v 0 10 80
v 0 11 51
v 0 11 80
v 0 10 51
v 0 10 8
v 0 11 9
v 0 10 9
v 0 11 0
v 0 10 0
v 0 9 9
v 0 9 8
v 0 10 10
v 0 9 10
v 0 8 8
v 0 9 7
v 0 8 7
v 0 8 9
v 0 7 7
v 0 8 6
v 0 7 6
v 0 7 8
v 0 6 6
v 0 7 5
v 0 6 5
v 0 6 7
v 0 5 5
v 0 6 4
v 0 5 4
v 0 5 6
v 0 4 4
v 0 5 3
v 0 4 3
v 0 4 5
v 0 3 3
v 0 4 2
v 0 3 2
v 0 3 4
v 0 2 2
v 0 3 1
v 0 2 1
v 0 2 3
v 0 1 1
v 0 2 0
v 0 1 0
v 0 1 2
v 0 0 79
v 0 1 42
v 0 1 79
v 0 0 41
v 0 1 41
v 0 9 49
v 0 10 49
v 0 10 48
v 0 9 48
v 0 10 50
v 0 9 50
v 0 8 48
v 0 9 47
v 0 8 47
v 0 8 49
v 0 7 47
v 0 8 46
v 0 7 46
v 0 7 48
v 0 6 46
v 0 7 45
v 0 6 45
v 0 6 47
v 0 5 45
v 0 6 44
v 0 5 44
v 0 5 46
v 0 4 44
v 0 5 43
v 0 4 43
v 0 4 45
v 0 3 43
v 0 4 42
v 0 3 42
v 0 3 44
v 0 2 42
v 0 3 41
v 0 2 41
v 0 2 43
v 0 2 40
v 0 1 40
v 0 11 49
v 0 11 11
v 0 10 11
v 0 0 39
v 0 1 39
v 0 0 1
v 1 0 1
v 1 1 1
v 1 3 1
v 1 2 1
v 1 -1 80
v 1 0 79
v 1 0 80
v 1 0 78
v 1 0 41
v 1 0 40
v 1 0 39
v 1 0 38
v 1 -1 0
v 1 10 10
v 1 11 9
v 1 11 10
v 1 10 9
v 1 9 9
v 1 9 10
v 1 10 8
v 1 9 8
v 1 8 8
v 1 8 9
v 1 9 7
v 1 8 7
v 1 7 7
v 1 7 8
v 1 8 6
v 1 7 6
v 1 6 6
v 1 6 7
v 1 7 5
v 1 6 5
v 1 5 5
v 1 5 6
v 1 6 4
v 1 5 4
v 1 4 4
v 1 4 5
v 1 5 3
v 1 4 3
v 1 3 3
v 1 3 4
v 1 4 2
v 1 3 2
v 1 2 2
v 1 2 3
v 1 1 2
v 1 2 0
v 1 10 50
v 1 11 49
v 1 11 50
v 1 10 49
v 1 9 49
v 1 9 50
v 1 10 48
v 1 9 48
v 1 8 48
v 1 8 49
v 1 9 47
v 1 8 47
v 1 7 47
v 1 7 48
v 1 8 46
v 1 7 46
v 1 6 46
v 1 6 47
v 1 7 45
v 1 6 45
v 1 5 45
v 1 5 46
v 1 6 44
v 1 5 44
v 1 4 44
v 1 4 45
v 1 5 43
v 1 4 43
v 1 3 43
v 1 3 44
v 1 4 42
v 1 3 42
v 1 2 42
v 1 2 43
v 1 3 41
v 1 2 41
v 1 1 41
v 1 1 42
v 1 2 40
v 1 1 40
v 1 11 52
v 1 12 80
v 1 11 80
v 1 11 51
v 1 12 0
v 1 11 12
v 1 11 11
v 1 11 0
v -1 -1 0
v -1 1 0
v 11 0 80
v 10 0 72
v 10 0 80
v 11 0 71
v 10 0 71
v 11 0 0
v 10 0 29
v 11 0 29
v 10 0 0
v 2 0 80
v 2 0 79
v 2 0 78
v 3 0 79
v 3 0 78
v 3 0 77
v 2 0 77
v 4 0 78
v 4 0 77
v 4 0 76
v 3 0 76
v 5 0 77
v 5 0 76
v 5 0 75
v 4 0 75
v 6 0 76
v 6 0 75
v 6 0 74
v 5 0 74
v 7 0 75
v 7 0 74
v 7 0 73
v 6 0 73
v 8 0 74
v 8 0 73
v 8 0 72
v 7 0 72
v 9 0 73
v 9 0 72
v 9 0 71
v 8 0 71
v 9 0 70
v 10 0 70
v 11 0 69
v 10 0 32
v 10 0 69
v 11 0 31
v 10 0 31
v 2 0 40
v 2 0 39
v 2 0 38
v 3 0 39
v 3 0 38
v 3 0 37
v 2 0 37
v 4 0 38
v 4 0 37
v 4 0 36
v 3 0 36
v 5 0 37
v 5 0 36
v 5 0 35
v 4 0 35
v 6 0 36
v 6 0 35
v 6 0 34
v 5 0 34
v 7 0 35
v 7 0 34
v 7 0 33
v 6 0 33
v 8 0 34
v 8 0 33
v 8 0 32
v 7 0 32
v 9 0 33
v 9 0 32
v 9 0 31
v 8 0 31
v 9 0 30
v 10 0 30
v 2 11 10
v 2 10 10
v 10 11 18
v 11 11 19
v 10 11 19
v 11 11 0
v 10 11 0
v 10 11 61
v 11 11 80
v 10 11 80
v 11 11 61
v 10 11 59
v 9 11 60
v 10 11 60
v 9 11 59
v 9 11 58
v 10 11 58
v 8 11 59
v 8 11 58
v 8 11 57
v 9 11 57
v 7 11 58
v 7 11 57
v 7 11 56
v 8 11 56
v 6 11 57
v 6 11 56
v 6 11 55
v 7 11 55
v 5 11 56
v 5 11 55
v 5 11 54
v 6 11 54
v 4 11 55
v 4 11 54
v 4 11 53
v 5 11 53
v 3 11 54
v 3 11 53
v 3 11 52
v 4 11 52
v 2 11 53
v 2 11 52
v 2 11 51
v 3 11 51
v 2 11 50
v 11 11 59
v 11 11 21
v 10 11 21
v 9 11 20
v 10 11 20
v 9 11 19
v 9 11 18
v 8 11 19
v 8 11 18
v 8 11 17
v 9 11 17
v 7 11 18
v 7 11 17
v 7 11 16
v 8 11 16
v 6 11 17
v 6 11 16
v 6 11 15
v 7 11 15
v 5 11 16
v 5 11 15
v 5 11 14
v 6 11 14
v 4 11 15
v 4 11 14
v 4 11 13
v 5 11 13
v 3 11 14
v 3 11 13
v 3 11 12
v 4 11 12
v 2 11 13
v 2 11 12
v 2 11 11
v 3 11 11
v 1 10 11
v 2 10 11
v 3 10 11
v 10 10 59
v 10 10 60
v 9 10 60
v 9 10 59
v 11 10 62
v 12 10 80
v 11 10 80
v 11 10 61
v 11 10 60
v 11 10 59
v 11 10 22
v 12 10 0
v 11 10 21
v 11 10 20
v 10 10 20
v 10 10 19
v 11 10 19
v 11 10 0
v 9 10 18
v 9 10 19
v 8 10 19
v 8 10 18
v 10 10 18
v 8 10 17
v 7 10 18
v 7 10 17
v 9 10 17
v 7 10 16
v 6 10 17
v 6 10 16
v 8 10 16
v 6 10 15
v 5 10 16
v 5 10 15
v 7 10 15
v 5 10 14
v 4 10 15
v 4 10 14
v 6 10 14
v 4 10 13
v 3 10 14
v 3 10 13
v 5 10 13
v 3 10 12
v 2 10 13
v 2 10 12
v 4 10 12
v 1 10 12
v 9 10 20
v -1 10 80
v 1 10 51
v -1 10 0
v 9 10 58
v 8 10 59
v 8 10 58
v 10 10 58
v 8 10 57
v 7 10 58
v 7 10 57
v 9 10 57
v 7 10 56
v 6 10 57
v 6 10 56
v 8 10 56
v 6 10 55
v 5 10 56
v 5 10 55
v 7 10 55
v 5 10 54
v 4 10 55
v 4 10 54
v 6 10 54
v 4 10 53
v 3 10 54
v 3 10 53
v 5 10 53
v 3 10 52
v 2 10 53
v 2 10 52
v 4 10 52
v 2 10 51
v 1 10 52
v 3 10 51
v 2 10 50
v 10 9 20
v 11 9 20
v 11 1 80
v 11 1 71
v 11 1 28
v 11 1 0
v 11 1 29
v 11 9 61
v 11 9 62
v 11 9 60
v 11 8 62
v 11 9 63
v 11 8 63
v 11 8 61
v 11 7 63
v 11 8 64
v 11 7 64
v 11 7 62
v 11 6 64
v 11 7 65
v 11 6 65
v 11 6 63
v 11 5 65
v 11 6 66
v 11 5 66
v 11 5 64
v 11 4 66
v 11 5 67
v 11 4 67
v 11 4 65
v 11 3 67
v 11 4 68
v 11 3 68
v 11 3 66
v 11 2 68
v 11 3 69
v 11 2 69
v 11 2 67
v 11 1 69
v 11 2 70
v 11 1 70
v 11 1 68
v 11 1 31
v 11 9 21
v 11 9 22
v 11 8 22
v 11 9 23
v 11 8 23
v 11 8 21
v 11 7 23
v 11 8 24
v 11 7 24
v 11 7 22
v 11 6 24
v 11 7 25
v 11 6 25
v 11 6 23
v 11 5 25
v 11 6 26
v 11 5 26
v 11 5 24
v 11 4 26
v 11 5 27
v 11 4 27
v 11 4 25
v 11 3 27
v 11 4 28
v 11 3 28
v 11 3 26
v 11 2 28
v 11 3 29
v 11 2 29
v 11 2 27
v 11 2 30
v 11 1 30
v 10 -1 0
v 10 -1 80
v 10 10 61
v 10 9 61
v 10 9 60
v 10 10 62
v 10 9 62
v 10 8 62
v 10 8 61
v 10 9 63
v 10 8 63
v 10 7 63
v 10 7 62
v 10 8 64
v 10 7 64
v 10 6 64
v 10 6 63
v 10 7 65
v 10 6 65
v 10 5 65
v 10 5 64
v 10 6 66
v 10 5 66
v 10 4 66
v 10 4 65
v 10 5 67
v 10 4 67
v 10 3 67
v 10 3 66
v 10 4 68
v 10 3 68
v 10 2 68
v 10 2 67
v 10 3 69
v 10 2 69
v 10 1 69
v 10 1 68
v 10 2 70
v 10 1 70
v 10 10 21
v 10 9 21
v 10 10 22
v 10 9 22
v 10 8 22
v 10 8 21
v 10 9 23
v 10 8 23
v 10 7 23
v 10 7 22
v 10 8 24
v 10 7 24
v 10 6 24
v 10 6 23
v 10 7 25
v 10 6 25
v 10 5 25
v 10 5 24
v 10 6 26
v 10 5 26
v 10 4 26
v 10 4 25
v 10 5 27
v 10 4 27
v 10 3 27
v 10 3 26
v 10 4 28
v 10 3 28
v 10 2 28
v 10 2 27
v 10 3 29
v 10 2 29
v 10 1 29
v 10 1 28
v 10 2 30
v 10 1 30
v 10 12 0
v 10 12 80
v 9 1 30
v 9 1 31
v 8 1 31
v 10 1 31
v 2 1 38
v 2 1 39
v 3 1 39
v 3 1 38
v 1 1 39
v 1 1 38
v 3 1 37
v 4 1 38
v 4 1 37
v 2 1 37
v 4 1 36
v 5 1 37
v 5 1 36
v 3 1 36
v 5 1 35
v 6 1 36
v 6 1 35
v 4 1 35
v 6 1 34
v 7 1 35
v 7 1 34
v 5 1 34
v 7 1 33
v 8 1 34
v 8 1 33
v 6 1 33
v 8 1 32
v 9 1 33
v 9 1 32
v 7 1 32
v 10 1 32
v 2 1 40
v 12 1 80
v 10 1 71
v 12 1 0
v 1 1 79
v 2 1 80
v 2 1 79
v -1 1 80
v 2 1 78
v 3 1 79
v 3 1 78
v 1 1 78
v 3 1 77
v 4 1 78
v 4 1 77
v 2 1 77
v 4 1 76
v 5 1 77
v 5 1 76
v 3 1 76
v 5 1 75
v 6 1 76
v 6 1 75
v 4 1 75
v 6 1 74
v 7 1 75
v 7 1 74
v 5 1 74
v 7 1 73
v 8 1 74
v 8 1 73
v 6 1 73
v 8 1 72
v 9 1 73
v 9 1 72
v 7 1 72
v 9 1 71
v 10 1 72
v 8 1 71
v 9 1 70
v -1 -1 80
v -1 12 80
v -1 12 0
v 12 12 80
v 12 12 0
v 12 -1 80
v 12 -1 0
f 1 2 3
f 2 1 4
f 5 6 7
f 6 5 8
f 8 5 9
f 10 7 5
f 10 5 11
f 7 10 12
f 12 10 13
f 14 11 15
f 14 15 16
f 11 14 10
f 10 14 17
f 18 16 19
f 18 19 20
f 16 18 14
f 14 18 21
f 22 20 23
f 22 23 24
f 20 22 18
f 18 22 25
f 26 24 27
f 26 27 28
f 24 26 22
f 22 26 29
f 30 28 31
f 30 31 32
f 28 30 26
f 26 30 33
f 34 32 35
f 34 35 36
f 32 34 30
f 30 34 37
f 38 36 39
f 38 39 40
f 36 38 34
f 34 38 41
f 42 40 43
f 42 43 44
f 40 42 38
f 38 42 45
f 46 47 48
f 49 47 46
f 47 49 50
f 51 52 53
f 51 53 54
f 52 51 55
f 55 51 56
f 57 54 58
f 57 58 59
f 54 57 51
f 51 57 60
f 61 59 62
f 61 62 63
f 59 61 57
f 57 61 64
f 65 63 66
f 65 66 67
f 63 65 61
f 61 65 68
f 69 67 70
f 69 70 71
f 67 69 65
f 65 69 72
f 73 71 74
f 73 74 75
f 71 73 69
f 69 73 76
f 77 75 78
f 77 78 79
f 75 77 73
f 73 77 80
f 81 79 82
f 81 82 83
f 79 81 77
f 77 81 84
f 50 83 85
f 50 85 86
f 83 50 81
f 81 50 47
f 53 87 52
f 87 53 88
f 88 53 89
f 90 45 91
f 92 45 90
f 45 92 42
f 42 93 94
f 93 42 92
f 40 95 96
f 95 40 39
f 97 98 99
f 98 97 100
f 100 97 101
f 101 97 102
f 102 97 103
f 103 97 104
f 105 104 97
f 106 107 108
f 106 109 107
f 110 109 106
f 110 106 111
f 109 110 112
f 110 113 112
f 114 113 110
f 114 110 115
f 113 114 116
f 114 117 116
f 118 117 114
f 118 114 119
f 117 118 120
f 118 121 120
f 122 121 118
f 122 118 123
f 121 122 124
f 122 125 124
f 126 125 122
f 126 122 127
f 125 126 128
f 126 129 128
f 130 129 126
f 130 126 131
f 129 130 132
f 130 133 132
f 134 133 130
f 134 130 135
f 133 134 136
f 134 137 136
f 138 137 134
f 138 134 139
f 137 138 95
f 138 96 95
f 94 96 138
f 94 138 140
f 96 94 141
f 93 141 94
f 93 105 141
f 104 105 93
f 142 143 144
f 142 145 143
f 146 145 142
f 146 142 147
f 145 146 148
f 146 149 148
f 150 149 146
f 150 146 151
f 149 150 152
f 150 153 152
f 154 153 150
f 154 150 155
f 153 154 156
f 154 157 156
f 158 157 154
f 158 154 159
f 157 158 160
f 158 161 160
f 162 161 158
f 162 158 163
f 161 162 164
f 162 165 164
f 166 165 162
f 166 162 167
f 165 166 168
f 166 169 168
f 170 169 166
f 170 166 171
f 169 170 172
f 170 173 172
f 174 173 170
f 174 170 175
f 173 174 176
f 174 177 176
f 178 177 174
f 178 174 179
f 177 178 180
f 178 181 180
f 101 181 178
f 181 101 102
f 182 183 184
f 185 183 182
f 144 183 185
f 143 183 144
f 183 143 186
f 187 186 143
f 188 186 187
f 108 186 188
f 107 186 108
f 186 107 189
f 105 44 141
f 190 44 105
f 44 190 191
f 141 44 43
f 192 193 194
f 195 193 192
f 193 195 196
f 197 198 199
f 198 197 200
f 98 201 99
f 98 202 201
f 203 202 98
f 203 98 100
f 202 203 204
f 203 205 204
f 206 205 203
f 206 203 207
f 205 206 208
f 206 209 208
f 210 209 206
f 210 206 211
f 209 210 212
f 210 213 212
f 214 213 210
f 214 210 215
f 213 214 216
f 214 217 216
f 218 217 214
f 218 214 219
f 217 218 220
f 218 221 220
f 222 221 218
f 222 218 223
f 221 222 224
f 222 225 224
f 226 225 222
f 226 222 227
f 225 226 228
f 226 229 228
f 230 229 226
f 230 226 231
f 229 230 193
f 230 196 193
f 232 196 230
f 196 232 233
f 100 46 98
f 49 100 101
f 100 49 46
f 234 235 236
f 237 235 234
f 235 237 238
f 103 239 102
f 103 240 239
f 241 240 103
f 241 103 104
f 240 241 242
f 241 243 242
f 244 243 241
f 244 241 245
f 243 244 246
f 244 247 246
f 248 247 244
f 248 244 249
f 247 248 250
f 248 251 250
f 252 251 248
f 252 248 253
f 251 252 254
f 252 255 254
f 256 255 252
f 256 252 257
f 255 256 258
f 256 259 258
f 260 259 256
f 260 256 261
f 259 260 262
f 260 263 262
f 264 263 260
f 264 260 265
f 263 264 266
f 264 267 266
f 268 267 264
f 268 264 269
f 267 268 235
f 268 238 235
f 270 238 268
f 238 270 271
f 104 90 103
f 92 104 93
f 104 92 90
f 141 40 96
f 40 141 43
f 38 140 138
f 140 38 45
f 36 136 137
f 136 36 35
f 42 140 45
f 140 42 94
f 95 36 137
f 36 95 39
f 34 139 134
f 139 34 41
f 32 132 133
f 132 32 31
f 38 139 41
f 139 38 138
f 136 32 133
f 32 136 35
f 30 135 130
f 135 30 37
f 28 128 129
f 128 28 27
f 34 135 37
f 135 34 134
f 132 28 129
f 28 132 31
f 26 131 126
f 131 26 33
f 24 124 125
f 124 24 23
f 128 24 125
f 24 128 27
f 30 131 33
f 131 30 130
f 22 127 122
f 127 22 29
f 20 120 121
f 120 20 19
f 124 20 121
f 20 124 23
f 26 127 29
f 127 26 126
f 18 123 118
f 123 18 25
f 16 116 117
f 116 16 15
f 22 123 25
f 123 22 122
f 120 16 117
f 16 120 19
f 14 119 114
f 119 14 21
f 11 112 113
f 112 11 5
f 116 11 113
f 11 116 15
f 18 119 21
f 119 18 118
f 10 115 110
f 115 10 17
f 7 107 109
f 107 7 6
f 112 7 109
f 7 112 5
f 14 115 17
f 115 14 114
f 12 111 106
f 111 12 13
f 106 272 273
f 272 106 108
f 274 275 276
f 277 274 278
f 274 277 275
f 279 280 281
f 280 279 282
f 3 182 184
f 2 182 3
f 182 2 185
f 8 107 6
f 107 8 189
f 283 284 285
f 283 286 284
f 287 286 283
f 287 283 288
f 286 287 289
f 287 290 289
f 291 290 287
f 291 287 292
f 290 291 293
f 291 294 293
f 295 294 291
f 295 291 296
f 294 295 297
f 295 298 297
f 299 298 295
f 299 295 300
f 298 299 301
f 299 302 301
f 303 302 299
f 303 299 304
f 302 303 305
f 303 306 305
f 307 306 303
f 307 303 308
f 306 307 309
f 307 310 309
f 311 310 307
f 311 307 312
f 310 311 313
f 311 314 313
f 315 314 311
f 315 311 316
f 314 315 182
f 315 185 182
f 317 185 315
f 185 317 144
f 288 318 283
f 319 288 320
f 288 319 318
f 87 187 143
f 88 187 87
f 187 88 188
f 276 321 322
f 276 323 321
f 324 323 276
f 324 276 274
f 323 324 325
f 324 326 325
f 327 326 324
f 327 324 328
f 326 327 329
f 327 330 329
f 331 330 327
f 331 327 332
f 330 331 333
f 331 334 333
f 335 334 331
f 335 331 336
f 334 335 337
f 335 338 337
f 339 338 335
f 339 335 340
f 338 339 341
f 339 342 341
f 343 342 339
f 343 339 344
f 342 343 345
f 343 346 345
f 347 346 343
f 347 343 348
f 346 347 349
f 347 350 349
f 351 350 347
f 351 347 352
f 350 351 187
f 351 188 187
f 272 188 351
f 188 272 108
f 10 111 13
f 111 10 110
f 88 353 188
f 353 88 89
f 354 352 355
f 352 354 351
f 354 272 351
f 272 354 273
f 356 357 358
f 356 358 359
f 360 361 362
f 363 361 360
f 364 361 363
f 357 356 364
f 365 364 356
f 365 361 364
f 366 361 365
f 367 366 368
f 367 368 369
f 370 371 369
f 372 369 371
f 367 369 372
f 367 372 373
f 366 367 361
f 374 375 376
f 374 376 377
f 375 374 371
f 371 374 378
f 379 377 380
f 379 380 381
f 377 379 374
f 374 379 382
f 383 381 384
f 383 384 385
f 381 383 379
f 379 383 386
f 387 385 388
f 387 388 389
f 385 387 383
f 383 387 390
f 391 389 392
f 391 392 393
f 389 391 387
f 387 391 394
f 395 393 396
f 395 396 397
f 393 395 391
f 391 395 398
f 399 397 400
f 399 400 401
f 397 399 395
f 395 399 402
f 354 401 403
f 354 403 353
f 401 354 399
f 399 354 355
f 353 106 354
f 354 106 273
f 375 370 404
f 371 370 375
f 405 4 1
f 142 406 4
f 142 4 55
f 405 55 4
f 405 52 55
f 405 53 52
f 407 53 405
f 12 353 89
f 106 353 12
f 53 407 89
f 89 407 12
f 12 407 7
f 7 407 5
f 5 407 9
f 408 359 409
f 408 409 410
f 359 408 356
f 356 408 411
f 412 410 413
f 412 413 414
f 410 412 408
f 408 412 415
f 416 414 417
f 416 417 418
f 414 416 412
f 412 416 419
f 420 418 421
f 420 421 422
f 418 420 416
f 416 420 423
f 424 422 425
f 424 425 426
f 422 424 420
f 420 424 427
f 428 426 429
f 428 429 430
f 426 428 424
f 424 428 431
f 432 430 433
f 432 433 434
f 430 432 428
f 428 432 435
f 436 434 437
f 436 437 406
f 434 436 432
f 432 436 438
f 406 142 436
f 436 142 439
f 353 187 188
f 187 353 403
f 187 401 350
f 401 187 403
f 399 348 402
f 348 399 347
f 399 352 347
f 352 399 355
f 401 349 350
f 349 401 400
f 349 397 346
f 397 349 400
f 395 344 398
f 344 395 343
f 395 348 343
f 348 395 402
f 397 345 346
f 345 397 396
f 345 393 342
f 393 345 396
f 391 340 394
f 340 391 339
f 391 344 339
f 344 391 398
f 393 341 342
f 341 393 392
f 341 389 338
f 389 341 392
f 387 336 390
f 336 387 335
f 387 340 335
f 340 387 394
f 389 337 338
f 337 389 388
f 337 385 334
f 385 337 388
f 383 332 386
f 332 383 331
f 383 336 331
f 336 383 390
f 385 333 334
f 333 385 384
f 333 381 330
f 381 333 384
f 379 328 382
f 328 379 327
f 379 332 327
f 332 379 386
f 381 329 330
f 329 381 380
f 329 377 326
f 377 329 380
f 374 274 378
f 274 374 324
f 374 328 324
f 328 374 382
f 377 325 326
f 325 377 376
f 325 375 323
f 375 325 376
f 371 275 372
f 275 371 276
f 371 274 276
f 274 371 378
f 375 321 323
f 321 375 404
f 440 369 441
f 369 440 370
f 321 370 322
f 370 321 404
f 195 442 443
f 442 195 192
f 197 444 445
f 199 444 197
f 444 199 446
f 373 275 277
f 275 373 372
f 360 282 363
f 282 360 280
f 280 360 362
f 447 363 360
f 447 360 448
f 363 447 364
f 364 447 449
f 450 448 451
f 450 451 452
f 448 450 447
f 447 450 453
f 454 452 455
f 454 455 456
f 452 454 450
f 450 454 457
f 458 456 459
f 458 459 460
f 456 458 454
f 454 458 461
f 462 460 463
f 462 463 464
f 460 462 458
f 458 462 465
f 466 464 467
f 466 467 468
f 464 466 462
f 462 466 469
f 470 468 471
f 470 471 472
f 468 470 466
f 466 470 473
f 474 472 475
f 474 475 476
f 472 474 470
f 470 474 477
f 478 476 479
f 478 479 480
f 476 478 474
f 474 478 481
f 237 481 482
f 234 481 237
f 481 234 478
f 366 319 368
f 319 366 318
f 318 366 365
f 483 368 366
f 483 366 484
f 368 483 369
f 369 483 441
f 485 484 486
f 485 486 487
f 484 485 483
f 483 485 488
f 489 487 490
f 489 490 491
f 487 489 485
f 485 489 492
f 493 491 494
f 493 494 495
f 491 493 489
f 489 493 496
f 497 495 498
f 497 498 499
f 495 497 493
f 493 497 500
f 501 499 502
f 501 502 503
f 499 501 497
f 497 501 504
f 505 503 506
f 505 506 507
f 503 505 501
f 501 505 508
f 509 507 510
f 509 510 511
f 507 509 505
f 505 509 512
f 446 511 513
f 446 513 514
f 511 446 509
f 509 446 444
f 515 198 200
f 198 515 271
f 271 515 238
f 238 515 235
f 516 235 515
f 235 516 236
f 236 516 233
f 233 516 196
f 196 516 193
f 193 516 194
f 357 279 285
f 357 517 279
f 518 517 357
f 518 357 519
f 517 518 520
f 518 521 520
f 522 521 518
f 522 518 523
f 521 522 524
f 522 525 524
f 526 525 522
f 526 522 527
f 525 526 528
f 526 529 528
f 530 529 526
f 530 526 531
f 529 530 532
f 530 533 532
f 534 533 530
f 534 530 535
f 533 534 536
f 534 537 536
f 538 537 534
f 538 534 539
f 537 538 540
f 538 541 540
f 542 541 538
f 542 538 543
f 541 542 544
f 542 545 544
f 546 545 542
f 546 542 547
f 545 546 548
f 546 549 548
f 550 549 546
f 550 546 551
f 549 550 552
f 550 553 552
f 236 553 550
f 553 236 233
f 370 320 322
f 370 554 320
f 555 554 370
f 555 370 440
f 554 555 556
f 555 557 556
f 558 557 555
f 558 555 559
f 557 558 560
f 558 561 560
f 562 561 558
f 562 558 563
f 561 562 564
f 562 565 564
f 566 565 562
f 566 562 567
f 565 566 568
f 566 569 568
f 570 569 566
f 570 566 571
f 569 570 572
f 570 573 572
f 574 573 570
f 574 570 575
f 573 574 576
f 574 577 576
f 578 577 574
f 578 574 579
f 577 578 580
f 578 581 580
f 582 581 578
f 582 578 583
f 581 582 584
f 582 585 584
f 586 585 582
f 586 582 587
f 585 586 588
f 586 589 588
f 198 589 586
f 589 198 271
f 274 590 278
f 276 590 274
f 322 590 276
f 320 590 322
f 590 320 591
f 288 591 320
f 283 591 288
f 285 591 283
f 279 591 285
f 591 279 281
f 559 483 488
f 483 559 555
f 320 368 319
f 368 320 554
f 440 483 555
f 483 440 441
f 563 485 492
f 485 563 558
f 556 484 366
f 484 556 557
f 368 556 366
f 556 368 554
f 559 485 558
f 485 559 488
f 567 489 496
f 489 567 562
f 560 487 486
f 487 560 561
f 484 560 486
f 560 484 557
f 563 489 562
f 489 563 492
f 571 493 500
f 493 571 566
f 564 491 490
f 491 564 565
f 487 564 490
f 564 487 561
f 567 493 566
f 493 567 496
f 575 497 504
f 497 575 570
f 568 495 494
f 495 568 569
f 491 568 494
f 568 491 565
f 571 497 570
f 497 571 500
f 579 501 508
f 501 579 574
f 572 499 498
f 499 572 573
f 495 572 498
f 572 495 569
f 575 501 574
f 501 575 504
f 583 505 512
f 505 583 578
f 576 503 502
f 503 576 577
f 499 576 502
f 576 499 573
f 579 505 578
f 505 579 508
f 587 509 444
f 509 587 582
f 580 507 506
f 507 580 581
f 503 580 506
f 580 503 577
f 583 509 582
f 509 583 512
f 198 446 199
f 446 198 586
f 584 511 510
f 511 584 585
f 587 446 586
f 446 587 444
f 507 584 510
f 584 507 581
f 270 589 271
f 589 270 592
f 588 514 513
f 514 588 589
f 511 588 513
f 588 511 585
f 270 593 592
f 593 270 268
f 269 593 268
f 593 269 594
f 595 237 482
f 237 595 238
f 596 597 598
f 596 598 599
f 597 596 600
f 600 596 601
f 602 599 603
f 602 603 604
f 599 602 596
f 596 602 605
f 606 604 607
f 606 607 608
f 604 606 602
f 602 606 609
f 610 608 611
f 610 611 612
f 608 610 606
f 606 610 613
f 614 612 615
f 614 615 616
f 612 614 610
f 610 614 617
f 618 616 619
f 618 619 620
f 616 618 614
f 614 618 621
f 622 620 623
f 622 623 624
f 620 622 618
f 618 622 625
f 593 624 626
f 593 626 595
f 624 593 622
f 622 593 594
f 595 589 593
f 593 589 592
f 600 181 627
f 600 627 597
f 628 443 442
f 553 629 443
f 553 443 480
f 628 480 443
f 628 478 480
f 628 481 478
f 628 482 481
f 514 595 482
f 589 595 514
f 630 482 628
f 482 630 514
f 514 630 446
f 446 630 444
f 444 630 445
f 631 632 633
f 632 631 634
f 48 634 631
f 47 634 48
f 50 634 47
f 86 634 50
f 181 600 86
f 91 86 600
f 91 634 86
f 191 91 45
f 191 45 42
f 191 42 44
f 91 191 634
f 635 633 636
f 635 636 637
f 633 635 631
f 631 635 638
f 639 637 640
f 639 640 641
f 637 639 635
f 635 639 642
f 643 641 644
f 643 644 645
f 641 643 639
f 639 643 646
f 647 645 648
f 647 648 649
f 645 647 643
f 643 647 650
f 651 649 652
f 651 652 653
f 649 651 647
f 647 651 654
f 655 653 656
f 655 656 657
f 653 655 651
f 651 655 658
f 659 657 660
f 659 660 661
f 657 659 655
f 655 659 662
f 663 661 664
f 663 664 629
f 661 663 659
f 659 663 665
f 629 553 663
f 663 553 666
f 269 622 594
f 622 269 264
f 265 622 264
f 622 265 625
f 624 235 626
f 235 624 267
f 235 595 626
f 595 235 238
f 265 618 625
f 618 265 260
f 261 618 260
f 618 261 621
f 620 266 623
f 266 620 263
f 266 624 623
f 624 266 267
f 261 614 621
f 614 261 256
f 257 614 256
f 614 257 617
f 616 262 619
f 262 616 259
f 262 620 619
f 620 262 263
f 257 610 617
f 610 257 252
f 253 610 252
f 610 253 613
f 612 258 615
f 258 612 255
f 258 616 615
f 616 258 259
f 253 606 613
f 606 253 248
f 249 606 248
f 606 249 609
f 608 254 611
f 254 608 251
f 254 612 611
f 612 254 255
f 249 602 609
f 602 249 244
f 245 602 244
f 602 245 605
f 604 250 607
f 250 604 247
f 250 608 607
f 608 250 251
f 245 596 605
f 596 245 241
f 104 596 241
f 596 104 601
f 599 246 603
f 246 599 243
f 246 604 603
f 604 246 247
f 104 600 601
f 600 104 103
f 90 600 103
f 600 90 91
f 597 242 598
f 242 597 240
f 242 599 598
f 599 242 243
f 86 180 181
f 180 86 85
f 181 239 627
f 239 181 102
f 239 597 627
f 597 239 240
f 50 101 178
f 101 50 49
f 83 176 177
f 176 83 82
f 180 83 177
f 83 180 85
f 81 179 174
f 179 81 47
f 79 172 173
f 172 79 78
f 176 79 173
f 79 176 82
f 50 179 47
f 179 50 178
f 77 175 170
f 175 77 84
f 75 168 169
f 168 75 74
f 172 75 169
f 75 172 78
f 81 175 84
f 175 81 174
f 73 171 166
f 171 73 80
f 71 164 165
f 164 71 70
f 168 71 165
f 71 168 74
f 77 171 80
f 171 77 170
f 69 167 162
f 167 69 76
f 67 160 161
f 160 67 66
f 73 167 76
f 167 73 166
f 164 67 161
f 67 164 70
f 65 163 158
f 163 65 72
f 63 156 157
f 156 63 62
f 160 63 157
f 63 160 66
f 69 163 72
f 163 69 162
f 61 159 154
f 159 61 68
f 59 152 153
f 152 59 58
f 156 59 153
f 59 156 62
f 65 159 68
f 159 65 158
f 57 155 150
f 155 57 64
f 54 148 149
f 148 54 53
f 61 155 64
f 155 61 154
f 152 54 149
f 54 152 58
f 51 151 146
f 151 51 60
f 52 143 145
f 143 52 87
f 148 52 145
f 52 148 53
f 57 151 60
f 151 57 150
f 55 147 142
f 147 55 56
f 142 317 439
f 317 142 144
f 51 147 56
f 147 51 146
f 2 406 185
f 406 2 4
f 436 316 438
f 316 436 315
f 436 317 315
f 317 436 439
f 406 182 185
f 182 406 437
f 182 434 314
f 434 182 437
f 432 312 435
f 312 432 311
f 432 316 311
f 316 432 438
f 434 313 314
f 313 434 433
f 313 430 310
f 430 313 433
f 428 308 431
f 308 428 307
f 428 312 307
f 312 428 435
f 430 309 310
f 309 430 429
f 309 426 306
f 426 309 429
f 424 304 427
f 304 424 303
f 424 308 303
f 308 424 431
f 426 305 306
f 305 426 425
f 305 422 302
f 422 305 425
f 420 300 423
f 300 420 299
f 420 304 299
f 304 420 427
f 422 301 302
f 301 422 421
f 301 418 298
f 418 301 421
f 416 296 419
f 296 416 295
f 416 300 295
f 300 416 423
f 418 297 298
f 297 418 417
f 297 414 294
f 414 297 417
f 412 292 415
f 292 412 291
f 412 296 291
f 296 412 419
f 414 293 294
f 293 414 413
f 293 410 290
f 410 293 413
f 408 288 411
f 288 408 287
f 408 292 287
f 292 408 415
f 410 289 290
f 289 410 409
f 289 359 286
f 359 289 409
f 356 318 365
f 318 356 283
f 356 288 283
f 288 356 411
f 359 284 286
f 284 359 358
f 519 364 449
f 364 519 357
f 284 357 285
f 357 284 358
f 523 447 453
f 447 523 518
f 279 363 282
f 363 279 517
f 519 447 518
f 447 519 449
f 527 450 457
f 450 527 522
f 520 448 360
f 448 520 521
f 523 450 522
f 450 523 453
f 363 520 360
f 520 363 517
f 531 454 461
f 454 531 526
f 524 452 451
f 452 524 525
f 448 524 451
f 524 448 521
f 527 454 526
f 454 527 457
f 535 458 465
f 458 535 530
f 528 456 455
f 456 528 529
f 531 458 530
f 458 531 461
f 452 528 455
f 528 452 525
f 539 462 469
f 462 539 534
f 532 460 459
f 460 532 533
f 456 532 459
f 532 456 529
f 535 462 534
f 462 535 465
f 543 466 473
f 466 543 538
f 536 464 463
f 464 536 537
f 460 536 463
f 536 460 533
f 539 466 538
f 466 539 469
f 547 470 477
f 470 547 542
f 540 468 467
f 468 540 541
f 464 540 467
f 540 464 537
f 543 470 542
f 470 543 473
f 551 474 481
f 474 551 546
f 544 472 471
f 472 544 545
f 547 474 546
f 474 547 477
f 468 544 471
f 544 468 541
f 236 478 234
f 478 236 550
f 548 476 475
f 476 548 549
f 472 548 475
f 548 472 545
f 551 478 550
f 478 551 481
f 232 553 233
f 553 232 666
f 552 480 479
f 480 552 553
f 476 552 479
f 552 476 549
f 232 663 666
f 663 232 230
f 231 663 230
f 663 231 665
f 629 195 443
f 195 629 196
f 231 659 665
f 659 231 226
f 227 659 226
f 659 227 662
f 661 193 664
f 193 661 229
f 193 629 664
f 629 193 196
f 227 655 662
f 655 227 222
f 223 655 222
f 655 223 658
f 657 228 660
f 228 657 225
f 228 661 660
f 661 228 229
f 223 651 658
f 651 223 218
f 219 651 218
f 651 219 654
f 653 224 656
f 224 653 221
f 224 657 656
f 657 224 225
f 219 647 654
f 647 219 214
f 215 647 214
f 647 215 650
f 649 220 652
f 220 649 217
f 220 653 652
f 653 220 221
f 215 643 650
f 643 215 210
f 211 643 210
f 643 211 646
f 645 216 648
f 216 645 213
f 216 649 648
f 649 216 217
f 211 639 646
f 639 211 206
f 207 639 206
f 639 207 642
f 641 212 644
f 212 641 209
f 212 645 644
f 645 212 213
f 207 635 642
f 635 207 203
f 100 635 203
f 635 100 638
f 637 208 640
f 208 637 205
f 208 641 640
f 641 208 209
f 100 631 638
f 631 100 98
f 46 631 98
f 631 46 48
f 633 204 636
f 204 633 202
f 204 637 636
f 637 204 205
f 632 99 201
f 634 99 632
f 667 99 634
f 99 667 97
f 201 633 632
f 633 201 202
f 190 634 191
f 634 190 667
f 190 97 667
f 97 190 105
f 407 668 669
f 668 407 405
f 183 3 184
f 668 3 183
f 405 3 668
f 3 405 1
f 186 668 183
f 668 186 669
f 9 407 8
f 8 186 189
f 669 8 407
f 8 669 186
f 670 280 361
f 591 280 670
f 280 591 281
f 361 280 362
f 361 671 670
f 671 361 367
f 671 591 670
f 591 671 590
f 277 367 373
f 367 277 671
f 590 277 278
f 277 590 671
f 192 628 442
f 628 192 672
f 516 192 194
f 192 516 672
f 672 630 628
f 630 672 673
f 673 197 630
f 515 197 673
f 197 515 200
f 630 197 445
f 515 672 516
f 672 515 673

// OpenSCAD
for(i=[0:1]){
for (y=[0:9]){
    z=i;
    translate([0,y-1,((z*40)+(y-1))]){
        color([1,0,0])
        cube([1,2,1]);
    }
    y=y+1;
}
for (x=[0:9]){
    z=i;
    translate([x-1,10,((z*40)+(9+x))]){
        color([0,1,0])
        cube([2,1,1]);
    }
    x=x+1;
}

for (y=[0:9]){
    z=i;
    translate([10,9-y,((z*40)+(20+y))]){
        color([0,0,1])
        cube([1,2,1]);
    }
    i=i+3;
}

for (x=[0:9]){
    z=i;
    translate([10-x,0,((z*40)+(29+x))]){
        color([1,1,0])
        cube([2,1,1]);
    }
    x=x+1;
}
}

//columna 1
translate([-1,-1,0]){
    color([0,1,1])
    cube([2,1,80]);
}
translate([-1,-1,0]){
    color([0,1,1])
    cube([1,2,80]);
}

//columna 2
translate([-1,11,0]){
    color([0,1,1])
    cube([2,1,80]);
}
translate([-1,10,0]){
    color([0,1,1])
    cube([1,2,80]);
}

//colunba 3
translate([11,10,0]){
    color([0,1,1])
    cube([1,2,80]);
}
translate([10,11,0]){
    color([0,1,1])
    cube([2,1,80]);
}

//colunba 4
translate([11,-1,0]){
    color([0,1,1])
    cube([1,2,80]);
}
translate([10,-1,0]){
    color([0,1,1])
    cube([2,1,80]);
}
